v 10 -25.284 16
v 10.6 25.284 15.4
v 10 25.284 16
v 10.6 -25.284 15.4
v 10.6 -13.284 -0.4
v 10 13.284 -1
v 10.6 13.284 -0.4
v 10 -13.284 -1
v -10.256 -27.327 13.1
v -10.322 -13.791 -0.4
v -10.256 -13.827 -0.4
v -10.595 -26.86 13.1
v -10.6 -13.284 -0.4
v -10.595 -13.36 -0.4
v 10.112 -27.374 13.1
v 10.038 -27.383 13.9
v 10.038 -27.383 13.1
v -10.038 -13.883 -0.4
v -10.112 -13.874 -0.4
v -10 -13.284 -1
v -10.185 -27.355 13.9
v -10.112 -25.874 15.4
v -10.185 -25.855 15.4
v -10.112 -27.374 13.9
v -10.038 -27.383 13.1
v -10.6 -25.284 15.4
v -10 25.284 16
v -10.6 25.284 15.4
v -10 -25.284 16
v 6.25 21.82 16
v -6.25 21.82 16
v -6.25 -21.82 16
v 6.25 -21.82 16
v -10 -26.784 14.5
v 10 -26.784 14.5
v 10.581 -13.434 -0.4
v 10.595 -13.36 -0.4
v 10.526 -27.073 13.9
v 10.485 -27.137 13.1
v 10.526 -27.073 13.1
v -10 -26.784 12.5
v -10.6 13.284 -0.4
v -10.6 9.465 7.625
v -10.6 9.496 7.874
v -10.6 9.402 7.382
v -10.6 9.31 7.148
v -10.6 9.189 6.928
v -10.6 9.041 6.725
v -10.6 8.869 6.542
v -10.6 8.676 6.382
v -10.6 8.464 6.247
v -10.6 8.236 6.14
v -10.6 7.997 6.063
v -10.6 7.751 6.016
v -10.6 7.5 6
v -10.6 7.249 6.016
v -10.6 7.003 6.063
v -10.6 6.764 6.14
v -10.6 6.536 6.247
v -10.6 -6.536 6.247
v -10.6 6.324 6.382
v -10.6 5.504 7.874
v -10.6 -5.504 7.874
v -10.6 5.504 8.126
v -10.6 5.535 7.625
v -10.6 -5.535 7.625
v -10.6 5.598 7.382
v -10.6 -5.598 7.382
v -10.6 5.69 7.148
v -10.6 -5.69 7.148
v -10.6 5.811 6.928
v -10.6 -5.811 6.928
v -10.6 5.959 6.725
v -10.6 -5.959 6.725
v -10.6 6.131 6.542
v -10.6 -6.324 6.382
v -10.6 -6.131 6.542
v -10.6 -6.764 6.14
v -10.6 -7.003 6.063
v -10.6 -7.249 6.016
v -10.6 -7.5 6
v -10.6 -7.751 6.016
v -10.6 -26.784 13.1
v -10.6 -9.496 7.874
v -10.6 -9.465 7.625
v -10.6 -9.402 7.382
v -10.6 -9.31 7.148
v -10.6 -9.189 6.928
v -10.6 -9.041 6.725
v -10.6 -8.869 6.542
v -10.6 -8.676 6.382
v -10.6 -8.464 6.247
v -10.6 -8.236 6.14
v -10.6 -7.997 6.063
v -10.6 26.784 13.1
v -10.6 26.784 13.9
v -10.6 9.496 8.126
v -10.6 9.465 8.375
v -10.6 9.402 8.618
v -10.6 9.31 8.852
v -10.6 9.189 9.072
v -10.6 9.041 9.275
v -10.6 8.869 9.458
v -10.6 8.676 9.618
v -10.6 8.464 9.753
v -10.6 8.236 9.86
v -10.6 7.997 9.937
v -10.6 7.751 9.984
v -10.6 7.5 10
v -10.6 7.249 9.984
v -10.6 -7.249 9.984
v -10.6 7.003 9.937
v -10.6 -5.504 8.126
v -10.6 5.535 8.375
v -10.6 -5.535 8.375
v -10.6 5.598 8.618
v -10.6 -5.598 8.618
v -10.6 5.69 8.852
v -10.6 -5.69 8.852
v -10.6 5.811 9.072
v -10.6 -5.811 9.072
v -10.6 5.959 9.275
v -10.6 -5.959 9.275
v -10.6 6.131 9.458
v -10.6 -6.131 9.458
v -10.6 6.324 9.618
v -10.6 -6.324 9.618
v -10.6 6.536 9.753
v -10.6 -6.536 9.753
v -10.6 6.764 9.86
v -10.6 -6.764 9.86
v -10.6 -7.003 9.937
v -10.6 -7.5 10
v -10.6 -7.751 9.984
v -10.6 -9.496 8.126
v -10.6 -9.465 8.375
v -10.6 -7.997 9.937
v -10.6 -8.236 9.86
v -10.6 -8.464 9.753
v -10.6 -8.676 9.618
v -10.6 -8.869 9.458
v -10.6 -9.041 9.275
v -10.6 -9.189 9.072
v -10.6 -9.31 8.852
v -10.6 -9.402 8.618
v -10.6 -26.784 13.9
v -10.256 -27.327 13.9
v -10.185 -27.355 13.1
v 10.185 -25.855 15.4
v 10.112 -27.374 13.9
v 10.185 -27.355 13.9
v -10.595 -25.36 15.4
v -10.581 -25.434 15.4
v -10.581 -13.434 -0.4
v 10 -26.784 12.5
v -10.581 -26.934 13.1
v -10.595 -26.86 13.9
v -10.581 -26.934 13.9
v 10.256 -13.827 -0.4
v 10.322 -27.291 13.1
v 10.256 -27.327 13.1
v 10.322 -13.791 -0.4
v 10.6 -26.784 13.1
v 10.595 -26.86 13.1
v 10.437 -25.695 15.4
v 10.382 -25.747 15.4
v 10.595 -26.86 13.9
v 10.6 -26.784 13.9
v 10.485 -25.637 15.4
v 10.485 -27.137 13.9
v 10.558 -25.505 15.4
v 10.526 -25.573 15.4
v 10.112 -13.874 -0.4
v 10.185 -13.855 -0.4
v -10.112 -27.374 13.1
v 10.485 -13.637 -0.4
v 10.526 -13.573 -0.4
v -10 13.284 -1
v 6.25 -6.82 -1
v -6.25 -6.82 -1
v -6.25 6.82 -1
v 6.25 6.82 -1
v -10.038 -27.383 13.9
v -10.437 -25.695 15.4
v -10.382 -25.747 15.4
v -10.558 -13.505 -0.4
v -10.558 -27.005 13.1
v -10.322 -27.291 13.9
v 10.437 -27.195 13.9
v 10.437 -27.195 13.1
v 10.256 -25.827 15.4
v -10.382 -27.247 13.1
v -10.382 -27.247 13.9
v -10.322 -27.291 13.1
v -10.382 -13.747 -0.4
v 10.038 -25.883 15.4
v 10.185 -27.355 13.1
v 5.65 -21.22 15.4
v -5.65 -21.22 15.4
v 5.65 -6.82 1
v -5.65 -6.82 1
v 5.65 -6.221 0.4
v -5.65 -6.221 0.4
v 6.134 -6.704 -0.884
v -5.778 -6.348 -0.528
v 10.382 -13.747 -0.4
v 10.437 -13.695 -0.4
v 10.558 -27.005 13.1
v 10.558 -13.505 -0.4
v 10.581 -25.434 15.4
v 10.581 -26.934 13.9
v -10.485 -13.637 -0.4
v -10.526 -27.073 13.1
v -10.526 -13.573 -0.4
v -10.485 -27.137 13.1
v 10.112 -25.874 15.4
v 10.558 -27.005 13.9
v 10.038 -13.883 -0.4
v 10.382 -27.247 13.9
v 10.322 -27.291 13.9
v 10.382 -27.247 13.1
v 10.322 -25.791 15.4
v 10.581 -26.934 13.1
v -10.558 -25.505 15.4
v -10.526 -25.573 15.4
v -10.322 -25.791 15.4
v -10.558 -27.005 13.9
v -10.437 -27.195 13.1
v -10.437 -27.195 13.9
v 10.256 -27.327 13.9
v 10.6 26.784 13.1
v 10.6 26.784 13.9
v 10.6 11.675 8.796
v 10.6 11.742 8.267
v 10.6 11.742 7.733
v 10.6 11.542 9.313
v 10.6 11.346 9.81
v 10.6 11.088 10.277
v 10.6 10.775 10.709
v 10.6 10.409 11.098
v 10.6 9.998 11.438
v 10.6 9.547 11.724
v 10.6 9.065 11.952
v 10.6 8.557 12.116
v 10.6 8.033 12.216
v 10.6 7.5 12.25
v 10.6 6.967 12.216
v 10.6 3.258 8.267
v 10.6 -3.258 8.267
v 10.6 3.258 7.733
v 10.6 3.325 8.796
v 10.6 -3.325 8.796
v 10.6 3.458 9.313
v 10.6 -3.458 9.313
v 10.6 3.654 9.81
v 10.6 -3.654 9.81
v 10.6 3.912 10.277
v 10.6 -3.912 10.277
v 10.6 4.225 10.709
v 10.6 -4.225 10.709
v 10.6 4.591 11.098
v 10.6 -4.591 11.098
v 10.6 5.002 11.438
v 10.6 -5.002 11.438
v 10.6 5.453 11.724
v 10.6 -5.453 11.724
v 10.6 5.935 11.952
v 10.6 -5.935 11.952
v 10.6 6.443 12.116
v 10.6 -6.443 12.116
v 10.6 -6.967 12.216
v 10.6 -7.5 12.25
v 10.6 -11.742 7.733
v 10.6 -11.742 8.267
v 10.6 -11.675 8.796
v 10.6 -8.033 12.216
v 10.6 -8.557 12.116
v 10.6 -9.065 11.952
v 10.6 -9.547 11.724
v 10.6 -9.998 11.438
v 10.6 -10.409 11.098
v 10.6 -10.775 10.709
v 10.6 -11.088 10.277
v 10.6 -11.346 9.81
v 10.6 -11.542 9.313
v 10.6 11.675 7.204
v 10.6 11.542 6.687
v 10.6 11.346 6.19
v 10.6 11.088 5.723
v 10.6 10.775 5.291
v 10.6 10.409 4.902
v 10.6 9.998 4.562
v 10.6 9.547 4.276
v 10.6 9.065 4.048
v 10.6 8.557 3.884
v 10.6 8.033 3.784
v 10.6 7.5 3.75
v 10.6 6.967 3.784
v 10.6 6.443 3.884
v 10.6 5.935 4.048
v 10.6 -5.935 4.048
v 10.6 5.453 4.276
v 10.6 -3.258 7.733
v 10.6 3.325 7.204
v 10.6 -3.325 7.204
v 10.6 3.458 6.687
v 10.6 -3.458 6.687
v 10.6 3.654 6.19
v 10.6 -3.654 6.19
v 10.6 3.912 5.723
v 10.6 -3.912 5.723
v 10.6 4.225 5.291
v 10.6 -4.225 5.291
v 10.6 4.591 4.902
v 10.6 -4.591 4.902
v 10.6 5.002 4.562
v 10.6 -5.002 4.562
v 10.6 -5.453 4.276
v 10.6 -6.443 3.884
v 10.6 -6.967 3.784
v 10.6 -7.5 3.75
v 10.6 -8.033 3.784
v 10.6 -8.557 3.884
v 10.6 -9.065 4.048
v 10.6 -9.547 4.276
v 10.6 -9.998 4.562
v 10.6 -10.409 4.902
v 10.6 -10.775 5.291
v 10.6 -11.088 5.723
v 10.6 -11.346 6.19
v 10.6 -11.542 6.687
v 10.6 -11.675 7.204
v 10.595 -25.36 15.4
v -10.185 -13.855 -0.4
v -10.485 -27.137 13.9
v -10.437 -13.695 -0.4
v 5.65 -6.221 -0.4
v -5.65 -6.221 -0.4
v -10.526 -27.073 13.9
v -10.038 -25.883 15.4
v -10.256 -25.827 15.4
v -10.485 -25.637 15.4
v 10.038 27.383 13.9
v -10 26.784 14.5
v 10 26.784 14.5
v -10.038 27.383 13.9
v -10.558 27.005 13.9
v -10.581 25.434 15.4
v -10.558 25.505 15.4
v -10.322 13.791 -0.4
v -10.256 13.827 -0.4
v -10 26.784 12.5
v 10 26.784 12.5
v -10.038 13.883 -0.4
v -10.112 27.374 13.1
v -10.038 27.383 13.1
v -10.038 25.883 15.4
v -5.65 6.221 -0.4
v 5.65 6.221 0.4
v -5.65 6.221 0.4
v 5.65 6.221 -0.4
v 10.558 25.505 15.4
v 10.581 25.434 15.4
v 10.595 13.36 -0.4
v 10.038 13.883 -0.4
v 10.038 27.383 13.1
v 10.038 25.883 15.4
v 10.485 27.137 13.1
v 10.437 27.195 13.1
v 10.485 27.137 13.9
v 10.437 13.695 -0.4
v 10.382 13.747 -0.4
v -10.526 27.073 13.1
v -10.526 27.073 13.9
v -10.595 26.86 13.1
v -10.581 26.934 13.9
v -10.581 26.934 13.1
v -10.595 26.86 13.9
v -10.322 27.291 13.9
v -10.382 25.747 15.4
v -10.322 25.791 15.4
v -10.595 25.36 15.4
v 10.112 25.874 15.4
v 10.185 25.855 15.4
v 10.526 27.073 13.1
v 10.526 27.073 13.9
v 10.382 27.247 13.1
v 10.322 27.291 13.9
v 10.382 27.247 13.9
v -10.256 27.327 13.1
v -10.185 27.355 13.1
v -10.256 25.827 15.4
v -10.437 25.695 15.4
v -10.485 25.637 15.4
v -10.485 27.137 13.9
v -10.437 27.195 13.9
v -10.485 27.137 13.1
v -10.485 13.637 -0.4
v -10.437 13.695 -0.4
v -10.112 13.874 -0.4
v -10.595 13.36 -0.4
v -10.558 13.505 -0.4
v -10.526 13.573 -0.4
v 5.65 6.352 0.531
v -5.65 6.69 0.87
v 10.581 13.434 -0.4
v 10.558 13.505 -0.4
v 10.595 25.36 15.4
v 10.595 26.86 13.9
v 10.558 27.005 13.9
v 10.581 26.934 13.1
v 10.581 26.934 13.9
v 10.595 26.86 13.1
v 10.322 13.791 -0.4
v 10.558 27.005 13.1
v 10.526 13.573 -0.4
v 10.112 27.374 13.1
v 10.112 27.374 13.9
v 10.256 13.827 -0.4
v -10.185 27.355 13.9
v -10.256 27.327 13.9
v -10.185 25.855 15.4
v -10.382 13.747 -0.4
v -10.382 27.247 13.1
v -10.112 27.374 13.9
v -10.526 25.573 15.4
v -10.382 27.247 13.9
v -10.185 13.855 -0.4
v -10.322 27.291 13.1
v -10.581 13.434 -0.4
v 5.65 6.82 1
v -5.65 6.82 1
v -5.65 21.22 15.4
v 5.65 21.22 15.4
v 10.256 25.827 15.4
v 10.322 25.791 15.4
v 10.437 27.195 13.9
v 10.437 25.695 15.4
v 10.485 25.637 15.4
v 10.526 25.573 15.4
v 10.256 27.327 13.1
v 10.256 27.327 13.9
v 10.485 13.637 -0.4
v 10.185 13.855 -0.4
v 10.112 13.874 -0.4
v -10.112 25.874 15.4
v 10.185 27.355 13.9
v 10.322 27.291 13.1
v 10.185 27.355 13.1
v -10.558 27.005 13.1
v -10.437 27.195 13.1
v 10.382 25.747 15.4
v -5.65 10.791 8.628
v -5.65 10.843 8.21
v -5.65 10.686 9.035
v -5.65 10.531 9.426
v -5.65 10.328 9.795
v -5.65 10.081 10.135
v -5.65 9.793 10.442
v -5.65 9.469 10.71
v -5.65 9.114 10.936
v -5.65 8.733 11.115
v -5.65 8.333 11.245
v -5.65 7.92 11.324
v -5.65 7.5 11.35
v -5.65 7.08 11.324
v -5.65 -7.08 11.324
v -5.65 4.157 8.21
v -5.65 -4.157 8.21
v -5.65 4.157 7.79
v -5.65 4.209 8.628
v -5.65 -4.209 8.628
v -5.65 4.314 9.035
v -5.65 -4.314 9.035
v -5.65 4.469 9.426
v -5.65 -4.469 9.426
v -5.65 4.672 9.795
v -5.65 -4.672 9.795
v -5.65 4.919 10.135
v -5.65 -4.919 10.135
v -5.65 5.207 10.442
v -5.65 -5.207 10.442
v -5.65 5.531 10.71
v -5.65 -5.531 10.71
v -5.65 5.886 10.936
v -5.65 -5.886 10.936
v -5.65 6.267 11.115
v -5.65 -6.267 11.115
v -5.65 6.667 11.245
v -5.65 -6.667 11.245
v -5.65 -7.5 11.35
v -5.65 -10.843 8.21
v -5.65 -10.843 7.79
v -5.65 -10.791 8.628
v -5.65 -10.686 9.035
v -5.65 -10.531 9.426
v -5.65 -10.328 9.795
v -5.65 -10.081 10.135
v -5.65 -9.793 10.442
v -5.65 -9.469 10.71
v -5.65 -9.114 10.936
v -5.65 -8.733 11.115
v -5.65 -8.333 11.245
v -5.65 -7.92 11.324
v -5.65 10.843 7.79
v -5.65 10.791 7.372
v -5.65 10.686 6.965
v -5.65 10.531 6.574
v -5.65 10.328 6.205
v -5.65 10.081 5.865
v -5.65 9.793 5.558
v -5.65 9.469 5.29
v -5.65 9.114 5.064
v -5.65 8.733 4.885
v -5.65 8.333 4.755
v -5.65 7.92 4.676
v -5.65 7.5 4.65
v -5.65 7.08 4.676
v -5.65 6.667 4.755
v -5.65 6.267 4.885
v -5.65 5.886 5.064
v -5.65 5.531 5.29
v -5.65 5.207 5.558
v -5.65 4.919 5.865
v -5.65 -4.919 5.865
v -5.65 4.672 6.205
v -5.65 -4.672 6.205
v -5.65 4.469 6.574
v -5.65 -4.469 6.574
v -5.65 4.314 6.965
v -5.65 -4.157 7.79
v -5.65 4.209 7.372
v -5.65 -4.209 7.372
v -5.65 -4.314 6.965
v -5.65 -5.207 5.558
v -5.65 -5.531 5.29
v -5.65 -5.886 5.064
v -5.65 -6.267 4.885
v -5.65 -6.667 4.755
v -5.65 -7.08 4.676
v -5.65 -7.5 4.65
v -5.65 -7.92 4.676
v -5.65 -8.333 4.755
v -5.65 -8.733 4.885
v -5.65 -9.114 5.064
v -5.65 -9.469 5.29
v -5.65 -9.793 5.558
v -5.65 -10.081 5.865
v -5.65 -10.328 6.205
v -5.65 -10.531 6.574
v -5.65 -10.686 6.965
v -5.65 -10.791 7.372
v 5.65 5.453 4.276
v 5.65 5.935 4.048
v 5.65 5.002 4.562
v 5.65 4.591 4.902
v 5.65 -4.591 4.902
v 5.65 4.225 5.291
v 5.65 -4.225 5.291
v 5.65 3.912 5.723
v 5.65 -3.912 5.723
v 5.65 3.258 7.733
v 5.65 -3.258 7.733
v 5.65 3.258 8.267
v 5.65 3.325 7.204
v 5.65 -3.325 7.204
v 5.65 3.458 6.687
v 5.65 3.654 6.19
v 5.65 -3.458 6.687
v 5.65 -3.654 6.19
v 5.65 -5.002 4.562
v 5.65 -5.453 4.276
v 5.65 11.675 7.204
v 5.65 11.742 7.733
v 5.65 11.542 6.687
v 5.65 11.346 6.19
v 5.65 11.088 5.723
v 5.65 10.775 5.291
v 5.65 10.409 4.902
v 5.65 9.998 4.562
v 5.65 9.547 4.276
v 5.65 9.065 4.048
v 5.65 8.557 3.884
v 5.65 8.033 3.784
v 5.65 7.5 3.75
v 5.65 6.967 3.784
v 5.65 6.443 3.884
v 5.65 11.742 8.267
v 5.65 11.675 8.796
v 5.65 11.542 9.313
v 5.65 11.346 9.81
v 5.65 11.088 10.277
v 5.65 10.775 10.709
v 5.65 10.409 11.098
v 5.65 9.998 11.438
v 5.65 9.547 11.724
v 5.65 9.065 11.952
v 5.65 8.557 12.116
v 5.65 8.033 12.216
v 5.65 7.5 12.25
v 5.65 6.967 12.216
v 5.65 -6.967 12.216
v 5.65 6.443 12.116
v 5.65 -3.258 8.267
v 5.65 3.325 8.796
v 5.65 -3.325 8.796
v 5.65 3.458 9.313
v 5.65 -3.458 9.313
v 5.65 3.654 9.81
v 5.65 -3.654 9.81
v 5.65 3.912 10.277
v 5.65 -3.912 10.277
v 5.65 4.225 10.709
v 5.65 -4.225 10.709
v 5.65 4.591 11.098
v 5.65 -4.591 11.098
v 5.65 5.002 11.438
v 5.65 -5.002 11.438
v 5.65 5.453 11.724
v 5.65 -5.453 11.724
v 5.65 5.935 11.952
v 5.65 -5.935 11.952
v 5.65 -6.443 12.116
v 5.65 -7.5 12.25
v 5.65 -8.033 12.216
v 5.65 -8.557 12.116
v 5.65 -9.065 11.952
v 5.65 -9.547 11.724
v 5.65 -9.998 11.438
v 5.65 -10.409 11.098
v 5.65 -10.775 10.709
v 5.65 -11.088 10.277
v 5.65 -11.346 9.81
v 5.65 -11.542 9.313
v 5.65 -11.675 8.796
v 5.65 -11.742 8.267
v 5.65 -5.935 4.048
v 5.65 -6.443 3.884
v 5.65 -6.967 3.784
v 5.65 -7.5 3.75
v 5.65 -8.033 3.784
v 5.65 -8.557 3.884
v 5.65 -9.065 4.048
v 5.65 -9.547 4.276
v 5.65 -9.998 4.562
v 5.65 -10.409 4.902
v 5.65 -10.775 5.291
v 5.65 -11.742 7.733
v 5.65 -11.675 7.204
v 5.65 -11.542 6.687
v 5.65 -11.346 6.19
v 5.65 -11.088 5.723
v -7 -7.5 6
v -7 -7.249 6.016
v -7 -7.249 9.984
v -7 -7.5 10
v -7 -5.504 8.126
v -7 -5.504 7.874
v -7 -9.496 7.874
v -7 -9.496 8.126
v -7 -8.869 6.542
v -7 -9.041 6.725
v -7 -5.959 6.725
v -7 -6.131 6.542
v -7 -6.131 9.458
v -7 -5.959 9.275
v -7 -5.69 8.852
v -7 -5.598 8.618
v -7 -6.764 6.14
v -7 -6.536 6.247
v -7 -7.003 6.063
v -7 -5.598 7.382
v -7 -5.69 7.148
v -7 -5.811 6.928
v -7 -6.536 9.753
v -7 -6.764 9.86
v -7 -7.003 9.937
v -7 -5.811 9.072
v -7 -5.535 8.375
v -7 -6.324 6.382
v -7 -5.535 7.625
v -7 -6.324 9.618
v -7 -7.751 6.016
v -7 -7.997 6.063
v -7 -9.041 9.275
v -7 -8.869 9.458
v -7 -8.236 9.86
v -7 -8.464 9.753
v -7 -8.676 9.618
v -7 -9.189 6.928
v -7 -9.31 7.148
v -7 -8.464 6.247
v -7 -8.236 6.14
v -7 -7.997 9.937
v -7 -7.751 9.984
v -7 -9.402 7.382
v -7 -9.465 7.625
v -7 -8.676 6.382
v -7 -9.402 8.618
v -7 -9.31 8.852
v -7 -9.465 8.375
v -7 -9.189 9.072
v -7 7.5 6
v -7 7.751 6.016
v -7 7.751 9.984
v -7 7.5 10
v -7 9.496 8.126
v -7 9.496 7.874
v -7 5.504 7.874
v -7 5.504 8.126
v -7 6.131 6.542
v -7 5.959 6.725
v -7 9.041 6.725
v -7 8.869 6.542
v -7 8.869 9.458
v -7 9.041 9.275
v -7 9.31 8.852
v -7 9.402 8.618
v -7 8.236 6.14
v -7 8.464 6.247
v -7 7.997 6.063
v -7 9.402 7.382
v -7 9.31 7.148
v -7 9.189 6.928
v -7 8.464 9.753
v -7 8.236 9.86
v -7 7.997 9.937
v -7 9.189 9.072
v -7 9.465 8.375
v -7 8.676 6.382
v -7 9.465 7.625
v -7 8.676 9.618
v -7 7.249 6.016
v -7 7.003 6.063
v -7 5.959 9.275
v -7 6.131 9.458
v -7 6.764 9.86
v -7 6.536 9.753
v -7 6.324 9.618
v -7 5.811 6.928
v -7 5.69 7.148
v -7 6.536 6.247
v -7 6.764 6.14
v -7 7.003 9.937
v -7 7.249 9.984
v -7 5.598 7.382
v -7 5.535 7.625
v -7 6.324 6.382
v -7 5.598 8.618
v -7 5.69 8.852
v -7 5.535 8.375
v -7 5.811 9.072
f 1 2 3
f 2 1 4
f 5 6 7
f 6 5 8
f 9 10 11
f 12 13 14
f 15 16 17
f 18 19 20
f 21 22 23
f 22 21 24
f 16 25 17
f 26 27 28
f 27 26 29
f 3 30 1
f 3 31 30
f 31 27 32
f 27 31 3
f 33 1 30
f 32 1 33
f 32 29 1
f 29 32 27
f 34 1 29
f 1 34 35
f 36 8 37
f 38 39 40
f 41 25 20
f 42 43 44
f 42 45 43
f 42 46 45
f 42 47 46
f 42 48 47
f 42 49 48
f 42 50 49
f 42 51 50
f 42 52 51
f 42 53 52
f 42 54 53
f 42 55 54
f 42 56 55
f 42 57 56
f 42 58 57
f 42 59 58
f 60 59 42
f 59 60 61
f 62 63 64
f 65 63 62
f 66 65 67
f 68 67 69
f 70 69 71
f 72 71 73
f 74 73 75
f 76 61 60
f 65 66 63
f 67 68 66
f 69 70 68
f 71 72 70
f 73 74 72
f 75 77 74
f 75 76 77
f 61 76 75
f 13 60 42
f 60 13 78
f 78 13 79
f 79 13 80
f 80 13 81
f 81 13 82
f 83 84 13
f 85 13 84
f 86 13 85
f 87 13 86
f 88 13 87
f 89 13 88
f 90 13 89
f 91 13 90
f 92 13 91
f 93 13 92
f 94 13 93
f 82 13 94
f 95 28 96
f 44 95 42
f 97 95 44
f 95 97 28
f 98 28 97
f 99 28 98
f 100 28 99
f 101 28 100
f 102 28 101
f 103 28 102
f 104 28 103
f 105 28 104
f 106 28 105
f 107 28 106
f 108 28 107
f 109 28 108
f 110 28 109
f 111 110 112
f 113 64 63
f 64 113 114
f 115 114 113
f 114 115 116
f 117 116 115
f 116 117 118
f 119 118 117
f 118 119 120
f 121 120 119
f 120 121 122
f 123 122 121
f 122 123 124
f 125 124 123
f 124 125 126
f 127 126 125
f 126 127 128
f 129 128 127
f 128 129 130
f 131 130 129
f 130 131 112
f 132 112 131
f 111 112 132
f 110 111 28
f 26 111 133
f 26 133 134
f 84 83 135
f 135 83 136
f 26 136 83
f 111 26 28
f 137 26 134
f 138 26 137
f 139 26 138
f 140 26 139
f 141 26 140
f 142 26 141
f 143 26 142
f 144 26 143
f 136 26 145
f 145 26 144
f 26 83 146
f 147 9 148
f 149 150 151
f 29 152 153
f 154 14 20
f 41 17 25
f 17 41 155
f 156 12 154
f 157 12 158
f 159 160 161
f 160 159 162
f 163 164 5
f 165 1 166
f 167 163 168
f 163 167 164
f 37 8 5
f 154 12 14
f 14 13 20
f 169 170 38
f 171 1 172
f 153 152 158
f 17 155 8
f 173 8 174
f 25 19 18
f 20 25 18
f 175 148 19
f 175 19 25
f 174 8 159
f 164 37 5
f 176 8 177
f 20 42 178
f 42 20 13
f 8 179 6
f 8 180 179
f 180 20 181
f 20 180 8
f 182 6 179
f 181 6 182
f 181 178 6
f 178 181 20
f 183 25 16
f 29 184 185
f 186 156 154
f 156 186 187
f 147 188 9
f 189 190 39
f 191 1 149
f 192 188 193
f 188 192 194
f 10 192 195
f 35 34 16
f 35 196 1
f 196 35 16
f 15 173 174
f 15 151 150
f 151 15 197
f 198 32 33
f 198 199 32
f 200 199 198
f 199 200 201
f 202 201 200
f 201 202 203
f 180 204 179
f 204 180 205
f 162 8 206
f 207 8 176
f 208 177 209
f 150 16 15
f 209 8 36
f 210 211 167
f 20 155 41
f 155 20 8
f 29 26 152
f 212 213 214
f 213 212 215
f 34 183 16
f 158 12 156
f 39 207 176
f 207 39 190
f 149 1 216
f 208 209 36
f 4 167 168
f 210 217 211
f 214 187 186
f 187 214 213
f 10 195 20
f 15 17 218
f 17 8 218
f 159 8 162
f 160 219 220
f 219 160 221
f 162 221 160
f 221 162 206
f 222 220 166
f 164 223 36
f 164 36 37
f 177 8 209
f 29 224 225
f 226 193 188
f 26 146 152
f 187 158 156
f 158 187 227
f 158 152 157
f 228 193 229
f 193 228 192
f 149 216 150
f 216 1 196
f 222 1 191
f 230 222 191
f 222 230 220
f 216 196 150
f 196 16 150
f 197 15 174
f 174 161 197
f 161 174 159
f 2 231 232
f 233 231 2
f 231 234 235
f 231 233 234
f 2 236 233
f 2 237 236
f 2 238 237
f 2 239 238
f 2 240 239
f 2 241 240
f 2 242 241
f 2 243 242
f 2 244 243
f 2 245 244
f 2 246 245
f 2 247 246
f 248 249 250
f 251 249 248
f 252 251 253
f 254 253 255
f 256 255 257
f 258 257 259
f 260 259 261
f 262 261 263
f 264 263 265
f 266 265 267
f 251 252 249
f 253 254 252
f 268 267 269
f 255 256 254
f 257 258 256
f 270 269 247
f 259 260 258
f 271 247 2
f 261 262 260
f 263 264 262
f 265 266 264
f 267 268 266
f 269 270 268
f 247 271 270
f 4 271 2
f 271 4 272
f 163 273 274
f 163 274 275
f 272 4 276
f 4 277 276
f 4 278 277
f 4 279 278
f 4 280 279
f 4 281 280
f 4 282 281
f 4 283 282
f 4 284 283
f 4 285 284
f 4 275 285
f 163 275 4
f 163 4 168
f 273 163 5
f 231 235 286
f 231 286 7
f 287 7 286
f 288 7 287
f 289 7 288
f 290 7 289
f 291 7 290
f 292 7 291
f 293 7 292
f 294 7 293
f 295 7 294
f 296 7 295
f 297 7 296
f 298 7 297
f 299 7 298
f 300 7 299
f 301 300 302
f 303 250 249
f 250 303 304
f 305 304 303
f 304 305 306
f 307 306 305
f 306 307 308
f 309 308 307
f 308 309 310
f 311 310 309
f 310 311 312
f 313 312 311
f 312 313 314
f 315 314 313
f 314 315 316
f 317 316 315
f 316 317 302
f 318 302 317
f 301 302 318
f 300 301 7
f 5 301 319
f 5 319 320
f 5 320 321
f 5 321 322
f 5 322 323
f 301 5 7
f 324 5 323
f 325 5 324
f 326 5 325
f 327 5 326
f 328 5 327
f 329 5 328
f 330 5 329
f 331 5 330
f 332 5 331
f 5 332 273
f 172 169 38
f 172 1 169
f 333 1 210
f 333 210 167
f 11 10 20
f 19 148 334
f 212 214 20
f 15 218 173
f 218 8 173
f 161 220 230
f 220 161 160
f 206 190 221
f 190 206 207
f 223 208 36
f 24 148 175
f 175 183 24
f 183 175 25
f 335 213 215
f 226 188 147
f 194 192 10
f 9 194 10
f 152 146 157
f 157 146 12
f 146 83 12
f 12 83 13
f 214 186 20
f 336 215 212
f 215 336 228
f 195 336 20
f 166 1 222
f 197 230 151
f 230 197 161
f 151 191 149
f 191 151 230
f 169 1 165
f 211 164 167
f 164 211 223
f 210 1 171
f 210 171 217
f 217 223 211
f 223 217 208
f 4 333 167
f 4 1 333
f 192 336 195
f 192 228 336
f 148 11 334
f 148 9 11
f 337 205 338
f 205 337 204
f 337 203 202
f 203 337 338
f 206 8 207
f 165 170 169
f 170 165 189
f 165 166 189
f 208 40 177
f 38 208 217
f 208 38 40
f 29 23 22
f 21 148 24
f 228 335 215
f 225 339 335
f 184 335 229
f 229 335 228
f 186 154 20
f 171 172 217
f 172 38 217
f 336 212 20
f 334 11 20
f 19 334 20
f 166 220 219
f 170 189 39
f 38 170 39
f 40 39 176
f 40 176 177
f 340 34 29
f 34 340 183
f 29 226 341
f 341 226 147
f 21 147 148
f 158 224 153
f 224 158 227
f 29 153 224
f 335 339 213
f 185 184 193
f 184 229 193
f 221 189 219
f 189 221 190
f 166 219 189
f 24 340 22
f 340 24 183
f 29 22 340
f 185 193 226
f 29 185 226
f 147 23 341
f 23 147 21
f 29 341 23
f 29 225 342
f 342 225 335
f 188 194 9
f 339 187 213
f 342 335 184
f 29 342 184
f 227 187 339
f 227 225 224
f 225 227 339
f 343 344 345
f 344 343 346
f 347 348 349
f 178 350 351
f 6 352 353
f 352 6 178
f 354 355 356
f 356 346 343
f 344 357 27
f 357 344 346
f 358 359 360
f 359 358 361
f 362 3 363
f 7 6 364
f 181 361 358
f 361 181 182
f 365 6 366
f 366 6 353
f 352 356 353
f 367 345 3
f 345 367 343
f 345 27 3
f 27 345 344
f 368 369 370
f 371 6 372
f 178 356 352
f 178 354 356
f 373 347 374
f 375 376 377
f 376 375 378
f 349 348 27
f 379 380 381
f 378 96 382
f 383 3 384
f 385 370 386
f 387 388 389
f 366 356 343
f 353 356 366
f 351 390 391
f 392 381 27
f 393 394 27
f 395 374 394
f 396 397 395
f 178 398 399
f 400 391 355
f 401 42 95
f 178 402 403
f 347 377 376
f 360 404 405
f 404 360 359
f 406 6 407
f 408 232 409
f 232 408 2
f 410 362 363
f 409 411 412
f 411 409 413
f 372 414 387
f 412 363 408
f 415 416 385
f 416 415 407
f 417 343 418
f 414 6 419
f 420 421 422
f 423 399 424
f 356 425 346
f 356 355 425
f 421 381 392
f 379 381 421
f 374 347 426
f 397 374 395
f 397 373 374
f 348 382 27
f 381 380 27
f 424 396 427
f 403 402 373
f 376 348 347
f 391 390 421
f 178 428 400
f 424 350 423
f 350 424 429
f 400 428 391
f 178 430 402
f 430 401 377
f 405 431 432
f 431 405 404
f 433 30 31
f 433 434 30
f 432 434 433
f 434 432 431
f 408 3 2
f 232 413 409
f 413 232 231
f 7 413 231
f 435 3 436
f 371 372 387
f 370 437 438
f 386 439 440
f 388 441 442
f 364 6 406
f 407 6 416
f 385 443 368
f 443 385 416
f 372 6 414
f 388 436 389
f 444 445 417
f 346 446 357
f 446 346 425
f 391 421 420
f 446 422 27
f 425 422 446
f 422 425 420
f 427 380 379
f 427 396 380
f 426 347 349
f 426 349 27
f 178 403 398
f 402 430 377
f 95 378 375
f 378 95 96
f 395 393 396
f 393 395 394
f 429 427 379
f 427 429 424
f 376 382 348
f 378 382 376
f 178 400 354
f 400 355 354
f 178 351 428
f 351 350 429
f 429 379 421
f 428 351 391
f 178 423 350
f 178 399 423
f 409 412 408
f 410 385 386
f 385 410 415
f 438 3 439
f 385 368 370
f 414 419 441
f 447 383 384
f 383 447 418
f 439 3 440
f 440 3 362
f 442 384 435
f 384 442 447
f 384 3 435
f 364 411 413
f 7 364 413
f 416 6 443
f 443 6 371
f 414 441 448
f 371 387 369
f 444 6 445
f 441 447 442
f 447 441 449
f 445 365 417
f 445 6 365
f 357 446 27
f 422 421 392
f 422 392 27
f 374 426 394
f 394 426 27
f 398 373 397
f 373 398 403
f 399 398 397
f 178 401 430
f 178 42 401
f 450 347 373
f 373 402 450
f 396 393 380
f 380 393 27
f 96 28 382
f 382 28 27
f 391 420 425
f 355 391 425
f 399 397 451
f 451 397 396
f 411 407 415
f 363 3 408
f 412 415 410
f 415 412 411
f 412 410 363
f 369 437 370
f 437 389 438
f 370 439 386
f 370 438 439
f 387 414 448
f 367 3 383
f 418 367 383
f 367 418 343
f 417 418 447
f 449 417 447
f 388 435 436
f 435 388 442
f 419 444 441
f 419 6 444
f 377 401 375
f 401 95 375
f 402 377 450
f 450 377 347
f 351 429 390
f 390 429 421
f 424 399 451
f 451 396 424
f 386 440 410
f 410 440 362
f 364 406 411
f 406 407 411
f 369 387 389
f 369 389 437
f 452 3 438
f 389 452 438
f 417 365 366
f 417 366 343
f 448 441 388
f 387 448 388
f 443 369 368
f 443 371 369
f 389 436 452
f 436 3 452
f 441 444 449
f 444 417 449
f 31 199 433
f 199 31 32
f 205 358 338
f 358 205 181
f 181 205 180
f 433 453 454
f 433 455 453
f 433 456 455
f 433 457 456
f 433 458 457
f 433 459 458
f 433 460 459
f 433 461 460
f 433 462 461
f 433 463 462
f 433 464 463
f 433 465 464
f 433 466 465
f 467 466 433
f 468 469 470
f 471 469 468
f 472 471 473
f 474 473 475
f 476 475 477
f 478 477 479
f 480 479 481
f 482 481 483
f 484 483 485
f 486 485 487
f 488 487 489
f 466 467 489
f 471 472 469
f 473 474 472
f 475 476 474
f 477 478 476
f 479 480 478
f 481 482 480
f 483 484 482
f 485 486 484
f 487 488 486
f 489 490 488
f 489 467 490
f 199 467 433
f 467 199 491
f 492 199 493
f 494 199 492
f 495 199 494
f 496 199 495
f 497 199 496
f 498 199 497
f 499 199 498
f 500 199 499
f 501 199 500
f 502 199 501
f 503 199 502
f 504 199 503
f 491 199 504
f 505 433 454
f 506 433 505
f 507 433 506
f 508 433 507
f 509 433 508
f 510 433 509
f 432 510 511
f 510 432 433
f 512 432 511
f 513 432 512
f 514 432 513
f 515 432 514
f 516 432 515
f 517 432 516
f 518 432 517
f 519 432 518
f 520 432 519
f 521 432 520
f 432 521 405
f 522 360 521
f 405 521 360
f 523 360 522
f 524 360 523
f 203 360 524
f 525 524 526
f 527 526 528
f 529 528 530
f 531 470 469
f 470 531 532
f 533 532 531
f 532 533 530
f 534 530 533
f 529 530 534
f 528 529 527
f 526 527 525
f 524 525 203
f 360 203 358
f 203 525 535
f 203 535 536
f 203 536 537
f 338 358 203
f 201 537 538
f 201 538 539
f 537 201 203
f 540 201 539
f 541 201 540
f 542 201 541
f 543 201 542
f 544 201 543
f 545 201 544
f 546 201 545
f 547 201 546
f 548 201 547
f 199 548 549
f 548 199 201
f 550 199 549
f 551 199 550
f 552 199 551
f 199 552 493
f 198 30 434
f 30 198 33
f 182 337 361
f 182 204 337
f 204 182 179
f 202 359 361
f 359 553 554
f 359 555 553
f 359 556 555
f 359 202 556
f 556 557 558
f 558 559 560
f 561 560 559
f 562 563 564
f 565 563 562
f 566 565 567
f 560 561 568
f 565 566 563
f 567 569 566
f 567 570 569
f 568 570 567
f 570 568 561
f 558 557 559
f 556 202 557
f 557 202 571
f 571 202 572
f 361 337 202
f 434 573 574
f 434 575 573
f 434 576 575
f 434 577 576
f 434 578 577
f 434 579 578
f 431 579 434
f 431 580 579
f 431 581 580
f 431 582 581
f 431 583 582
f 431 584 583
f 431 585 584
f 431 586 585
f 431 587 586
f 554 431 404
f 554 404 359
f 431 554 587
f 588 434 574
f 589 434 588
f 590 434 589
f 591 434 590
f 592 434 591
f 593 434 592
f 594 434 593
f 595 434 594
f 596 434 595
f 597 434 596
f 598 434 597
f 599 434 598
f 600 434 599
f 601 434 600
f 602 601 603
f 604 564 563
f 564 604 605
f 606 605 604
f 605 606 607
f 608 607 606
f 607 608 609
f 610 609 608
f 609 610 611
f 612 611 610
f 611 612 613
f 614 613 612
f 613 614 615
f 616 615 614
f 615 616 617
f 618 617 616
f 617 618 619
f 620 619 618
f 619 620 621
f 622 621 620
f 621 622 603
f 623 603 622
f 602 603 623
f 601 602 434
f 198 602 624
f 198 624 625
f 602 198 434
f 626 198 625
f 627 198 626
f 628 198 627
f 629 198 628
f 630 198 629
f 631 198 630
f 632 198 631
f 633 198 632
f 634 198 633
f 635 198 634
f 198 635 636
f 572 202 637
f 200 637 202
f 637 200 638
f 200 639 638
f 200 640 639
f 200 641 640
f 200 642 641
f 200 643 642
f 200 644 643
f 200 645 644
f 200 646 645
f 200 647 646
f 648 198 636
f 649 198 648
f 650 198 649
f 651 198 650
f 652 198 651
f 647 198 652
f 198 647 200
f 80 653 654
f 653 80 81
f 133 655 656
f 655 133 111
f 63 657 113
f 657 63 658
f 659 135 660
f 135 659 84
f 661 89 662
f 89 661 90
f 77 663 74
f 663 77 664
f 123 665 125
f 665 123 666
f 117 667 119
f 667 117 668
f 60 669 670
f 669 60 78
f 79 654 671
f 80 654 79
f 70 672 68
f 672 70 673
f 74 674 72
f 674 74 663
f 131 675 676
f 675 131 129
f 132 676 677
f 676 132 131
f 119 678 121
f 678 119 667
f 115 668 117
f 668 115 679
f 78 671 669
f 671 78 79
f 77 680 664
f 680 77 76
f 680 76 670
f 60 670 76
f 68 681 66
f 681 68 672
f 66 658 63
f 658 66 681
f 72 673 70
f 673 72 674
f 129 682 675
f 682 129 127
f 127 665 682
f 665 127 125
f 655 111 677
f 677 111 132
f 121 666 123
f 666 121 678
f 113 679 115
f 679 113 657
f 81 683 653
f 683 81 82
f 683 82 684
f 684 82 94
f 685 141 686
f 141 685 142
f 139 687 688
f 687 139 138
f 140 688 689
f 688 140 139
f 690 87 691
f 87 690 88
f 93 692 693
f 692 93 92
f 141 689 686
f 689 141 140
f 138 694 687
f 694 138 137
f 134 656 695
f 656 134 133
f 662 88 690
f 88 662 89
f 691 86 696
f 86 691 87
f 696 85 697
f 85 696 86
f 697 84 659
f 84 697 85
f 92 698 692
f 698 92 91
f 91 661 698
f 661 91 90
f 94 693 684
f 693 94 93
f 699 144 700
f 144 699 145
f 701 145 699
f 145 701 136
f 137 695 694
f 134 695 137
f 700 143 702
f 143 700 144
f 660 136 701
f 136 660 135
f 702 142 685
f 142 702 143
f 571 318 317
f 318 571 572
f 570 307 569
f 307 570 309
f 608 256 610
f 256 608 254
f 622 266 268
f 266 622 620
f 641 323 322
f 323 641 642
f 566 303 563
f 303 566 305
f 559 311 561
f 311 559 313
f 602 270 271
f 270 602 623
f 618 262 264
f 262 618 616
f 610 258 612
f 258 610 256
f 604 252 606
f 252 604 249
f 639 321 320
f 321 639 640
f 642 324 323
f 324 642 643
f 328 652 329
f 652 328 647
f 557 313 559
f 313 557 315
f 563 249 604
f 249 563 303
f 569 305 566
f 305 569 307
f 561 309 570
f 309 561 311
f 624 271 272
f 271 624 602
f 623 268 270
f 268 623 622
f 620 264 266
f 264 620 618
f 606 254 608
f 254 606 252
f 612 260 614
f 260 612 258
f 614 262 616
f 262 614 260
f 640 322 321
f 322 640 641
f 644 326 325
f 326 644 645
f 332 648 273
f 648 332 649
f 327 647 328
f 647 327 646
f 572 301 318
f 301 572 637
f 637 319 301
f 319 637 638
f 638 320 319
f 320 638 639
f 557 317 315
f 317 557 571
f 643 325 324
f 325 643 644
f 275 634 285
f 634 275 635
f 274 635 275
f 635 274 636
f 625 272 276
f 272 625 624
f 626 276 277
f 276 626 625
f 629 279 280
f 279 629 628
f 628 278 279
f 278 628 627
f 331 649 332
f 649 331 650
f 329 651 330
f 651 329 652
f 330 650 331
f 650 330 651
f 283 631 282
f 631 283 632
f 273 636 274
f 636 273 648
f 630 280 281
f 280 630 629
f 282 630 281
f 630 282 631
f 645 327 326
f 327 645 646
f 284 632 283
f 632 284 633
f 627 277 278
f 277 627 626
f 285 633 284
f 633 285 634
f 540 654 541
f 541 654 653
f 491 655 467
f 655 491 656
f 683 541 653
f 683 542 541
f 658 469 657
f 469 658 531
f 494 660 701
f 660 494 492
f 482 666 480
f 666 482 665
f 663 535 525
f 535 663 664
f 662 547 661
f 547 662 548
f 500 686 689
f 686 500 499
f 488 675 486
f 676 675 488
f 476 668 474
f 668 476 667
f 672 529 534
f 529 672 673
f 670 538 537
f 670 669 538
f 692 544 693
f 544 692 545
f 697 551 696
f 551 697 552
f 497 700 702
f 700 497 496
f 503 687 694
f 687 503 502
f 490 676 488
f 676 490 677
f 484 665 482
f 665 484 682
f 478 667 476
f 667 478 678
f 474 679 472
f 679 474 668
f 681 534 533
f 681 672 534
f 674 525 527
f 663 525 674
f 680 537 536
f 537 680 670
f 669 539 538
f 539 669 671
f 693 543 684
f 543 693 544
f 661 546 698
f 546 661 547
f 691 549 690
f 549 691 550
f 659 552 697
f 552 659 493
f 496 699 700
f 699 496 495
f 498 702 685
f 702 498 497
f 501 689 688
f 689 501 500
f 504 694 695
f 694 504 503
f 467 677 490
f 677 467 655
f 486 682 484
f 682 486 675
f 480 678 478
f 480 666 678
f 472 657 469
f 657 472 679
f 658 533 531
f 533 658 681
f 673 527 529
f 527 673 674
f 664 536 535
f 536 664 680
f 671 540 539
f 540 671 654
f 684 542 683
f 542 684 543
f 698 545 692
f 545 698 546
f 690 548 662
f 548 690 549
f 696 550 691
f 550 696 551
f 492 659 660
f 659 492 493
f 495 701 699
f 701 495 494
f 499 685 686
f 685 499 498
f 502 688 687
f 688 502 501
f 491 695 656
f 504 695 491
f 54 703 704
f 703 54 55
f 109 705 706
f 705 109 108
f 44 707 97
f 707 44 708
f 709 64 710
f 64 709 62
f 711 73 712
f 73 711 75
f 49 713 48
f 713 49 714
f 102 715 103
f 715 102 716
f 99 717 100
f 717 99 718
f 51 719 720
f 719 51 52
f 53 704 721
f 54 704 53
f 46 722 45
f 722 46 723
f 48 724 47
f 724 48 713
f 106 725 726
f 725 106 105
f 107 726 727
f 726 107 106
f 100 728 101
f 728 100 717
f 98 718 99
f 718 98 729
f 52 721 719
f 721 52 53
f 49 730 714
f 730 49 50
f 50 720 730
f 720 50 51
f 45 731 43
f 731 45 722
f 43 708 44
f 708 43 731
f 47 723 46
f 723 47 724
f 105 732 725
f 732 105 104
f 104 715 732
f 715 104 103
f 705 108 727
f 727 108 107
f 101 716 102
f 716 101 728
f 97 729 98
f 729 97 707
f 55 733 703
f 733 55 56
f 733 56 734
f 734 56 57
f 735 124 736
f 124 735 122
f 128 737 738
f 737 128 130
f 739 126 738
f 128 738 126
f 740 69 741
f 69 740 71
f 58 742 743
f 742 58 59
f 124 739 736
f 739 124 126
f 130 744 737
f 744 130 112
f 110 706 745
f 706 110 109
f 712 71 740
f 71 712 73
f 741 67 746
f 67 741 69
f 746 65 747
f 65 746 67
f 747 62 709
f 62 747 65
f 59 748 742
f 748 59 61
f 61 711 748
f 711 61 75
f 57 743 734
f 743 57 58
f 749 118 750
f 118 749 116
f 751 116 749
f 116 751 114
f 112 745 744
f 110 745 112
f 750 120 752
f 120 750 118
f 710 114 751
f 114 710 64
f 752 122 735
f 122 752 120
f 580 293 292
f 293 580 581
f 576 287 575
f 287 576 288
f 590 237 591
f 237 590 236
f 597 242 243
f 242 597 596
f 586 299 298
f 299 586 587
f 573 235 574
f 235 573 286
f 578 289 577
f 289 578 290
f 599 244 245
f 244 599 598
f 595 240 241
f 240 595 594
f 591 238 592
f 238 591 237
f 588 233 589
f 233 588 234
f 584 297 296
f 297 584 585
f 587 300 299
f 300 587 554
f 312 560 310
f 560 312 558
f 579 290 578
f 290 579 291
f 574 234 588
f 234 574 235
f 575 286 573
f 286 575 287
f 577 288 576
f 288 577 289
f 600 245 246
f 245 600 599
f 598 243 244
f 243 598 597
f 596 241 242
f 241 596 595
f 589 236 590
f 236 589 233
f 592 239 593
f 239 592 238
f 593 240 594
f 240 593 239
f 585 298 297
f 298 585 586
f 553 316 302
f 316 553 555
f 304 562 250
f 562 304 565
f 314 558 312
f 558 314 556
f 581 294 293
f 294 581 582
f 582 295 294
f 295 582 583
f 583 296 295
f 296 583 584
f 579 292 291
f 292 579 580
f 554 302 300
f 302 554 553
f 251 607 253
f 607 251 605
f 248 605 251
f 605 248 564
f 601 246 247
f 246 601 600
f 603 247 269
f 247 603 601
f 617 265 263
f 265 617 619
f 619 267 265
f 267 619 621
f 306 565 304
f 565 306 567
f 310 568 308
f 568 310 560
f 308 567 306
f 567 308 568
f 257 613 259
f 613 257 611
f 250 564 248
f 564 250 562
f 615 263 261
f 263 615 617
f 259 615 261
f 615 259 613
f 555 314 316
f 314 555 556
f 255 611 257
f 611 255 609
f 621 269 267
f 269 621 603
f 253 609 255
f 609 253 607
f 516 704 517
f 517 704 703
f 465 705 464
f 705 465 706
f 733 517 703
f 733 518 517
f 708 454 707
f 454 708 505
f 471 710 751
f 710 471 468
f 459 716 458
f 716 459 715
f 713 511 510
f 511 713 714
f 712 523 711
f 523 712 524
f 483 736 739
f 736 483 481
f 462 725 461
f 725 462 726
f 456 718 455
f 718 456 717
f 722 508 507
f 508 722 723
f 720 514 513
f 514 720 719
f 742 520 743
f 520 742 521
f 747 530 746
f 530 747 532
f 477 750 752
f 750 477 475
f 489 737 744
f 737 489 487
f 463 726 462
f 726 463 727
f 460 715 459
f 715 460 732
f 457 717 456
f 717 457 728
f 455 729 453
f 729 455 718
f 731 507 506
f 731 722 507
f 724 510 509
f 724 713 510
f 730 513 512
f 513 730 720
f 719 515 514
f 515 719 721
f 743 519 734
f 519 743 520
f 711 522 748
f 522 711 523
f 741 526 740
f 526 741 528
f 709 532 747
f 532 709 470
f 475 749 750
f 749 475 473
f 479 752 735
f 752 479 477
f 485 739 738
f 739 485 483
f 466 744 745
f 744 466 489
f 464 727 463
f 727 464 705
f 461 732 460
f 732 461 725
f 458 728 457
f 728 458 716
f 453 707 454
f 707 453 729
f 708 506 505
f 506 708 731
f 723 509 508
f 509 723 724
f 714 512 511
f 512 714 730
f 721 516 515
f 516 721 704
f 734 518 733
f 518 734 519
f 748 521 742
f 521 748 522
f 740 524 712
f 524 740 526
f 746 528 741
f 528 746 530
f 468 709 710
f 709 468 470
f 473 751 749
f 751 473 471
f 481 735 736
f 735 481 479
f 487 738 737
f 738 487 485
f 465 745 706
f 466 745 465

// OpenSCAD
difference(){
    minkowski(){
        intersection(){
            difference(){
                // starting box tipped on one edge
                translate([0, 0, 15]) rotate([45, 0, 0]) cube([20, 40, 40], center=true);
                // lop off bottom corner
                translate([0, 0, -10]) cube([40, 40, 20], center=true);
                // lop off top half
                translate([0, 0, 55]) cube([80, 80, 80], center=true);
                // cutout for tablet clearance
                translate([0, 0, 25]) rotate([45, 0, 0]) cube([12.5, 45, 45], center=true);
                // chamfer bottom opening
                //translate([0, 0, -23]) rotate([45, 0, 0]) cube([12.5, 45, 45], center=true);
            }
            // chamfer outer corners
            translate([0, 0, 12]) rotate([45, 0, 0]) cube([25, 40, 40], center=true);
        }
        // buck for minkowski chamfering
        intersection(){
            union(){
                cylinder(r1=1, r2=0, h=1, $fn=50);
                translate([0, 0, -1]) cylinder(r2=1, r1=0, h=1, $fn=50);
            }
            cylinder(r1=.6, r2=.6, h=3, center=true, $fn=50);
        }
    }
    translate([0, -7.5, 8]) rotate([0, 90, 0]) union(){
        cylinder(r1=2, r2=2, h=40, $fn=50, center=true);
        translate([0, 0, 10.5]) cylinder(r1=4.25, r2=4.25, h=21, $fn=50, center=true);
        translate([0, 0, -7]) cylinder(r1=0, r2=4, h=4, $fn=50, center=true);
    }
    translate([0, 7.5, 8]) rotate([0, 90, 0]) union(){
        cylinder(r1=2, r2=2, h=40, $fn=50, center=true);
        translate([0, 0, 10.5]) cylinder(r1=4.25, r2=4.25, h=21, $fn=50, center=true);
        translate([0, 0, -7]) cylinder(r1=0, r2=4, h=4, $fn=50, center=true);
    }
}
